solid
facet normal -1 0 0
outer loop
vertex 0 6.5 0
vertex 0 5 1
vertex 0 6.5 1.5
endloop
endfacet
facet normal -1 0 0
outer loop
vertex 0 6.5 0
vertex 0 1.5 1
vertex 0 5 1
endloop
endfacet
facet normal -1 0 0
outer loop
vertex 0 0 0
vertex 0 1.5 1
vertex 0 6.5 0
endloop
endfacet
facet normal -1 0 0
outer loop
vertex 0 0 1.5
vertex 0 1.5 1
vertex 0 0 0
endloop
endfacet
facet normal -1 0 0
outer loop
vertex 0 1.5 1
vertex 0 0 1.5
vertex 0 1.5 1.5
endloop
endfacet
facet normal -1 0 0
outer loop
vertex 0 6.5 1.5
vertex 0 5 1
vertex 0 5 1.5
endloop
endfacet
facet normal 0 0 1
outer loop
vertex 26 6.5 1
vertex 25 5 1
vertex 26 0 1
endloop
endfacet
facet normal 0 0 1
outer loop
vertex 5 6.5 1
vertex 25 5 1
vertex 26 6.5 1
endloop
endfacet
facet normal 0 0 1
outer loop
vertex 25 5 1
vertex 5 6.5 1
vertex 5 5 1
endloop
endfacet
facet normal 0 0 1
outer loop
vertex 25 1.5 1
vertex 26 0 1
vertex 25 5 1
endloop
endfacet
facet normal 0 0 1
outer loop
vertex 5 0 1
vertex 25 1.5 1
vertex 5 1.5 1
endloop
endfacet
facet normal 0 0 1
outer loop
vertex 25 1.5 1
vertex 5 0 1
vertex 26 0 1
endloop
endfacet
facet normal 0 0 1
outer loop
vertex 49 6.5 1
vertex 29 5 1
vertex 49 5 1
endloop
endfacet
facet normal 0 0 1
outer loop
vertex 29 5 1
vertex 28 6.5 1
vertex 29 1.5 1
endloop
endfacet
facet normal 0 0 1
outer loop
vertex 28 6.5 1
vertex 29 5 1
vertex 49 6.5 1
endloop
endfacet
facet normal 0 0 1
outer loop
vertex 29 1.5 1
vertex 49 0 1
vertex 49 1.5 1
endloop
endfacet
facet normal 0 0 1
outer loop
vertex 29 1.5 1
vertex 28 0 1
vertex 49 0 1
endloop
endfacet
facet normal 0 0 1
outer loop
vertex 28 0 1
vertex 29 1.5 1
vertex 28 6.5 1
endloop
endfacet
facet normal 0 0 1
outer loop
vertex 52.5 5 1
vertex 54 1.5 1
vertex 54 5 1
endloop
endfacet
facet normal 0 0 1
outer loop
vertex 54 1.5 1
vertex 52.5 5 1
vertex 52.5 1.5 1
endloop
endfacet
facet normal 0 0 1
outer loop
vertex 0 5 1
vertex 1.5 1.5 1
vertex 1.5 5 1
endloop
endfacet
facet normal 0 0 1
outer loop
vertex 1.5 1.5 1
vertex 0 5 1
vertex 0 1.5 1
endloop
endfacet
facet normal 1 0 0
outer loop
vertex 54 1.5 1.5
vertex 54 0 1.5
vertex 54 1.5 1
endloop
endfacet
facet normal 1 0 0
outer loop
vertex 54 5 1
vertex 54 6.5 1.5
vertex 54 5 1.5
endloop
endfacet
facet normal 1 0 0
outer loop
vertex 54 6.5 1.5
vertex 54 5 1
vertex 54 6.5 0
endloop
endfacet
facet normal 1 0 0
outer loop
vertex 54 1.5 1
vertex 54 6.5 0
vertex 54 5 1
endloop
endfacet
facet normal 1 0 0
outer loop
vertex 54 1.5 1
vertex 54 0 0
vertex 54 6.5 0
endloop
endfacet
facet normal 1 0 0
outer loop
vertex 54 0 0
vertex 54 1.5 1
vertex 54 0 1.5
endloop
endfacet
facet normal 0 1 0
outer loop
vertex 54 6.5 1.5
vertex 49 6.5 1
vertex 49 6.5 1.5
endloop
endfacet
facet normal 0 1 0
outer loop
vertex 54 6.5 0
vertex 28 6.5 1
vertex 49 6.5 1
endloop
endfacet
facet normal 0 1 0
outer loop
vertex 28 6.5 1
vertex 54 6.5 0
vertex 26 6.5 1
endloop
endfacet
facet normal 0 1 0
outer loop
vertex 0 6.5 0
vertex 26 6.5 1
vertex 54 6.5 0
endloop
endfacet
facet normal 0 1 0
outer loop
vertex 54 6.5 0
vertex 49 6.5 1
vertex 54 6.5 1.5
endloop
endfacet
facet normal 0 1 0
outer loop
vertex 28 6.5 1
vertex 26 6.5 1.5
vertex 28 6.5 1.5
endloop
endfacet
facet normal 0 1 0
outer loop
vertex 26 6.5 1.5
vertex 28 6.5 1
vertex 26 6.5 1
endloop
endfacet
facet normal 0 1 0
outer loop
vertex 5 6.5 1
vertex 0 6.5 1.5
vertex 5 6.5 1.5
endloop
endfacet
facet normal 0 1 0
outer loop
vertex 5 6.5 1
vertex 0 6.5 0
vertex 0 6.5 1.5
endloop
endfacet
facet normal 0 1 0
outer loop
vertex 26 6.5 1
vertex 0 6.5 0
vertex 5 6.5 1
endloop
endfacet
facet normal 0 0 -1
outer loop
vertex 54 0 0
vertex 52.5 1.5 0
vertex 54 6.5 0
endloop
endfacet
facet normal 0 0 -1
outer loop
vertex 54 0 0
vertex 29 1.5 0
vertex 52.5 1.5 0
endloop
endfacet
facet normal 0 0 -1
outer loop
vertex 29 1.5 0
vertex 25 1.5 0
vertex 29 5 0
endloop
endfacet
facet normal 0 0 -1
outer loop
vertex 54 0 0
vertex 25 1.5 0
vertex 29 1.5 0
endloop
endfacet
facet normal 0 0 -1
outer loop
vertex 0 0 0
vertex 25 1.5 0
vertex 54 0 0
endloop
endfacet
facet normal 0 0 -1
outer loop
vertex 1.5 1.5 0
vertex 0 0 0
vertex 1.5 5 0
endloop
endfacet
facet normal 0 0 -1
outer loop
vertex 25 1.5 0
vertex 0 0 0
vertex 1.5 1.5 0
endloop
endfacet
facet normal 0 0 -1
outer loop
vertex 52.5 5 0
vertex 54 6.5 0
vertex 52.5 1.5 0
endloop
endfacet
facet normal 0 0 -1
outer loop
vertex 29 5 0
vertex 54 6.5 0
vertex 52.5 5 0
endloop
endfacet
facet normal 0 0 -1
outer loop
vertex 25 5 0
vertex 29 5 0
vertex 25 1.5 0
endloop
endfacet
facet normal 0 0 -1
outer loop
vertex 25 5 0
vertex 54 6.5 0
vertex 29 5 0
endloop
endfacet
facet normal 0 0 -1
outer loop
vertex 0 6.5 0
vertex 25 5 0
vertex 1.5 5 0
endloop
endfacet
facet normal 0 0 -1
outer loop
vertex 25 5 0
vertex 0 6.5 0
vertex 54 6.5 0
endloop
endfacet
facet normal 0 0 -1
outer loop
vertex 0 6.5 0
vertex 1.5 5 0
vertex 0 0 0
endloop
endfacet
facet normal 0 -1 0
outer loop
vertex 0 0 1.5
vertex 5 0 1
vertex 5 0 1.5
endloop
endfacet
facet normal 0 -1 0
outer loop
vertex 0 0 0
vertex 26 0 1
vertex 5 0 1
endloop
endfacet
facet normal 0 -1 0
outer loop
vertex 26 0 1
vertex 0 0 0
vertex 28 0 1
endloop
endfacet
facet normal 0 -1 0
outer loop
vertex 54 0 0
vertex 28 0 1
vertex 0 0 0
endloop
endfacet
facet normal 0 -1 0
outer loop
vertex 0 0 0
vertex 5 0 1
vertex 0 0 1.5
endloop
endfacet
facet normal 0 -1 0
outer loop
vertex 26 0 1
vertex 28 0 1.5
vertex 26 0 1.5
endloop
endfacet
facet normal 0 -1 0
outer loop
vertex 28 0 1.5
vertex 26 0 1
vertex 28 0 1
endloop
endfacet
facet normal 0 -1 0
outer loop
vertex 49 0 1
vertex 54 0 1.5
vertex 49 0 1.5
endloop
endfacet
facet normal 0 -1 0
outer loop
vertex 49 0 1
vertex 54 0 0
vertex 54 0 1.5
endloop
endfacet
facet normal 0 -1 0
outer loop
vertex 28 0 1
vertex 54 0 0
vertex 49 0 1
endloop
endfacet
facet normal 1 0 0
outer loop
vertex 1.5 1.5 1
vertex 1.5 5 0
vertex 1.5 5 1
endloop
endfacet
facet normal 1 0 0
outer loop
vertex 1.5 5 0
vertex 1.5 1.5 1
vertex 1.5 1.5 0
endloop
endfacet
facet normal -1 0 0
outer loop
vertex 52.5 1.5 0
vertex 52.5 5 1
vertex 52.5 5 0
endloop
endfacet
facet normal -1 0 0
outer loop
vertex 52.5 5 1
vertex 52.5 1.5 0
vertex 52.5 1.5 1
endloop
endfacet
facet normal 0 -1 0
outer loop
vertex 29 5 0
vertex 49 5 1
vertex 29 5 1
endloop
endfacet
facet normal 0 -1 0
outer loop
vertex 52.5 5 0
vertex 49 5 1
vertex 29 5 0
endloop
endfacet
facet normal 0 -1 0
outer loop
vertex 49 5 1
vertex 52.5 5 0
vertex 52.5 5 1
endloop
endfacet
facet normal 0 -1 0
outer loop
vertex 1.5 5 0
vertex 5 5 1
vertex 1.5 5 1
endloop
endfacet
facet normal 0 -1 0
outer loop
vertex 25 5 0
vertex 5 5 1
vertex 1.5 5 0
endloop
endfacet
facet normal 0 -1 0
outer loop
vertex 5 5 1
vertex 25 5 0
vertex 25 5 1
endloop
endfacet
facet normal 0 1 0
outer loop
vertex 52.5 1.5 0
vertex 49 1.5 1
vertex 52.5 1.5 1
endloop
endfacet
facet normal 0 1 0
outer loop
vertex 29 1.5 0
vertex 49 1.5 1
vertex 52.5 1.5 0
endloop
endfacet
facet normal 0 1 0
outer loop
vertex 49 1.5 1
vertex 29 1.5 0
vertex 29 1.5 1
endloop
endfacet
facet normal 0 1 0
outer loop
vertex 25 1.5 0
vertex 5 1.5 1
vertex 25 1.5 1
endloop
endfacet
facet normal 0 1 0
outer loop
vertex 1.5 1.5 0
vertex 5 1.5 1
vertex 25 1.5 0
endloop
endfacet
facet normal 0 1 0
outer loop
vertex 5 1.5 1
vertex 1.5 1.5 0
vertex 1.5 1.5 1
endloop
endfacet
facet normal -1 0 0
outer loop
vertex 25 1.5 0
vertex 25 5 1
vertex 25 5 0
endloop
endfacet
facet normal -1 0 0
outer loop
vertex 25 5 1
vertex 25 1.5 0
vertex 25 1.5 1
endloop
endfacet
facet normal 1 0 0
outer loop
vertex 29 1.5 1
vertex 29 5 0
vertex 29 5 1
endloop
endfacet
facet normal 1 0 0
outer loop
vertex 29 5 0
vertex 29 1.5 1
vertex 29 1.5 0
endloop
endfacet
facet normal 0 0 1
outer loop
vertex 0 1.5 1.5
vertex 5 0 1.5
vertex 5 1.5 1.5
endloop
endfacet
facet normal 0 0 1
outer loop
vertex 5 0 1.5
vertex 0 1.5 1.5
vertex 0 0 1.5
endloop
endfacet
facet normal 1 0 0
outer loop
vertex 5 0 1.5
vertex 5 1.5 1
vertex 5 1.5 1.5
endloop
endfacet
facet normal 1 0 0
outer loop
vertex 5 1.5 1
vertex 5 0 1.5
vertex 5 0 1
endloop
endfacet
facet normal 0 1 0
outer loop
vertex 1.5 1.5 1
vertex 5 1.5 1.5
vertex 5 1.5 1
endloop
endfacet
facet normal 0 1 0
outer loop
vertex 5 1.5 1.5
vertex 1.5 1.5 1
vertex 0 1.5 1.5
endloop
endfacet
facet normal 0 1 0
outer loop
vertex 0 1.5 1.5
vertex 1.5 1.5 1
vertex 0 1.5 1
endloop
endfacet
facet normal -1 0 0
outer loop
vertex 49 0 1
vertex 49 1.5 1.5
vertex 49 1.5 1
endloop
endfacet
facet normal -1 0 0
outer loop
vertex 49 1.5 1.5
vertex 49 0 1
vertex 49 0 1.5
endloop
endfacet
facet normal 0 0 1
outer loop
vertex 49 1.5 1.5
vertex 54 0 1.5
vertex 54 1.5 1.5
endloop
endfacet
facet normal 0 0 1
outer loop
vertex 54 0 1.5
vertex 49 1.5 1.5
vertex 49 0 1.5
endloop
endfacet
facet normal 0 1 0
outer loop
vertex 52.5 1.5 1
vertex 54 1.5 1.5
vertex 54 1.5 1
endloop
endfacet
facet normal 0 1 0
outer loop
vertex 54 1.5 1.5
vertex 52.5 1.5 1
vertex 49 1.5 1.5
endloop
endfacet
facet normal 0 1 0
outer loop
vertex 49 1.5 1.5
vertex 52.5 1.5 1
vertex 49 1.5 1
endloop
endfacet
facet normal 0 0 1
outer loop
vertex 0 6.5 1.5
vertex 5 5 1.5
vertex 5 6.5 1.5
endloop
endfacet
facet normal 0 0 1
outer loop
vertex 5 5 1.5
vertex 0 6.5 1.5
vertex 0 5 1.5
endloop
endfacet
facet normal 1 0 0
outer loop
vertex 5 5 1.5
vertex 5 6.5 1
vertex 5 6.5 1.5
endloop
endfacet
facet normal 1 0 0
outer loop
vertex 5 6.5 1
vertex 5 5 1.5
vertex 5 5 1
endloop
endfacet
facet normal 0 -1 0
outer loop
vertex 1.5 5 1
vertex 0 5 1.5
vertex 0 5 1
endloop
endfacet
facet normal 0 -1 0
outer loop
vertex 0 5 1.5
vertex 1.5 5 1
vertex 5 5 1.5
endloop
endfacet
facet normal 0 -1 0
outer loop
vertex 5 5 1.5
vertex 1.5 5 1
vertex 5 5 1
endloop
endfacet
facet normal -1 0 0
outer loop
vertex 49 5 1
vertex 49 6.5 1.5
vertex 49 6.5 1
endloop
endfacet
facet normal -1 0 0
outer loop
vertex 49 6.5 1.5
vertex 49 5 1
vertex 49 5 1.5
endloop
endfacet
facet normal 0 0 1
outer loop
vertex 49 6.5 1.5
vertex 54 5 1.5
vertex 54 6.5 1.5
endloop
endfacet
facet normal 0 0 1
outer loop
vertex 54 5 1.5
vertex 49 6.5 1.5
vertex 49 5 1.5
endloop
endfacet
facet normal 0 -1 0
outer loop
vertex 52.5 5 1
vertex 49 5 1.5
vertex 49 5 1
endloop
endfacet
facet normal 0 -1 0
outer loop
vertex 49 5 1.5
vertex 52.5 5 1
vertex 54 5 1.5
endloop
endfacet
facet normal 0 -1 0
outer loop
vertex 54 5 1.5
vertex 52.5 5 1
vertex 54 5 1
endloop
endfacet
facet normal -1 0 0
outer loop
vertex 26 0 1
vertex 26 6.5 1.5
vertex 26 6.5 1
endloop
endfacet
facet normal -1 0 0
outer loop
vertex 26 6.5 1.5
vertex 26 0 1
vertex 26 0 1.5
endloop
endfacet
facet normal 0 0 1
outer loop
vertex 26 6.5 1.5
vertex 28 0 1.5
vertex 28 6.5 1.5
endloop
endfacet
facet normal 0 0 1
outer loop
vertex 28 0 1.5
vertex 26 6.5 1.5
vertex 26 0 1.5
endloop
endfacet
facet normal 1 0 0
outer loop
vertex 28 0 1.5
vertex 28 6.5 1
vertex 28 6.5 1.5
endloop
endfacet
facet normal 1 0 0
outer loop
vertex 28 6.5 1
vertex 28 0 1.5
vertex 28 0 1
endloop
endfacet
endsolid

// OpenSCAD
module small_stick_mate()
{
    full_length = 54;
    full_width = 6.5;
    void_length = full_length-3;
    void_width = full_width-3;
    thickness = 1;
    union(){
        // Main body of the part
        difference() {
            cube(size=[full_length,full_width,thickness]);
            void_x = (full_length - void_length)/2;
            void_y = (full_width -void_width)/2;
            translate([void_x,void_y,-1]) cube(size=[void_length,void_width,10]);
        }
      
       // Central connection
       connection_length = 4;
       connection_x = (full_length/2 - connection_length/2);
       translate([connection_x,0,0]) cube(size=[connection_length,full_width,1]); 
       
       // Spacers
       spacer_height = 0.5;
       spacer_length = 5;
       spacer_width = (full_width-void_width)/2;
       spacer_x = full_length-spacer_length;
       spacer_y = (full_width-void_width)/2 + void_width;
       translate([0,0,1]) cube(size=[spacer_length,spacer_width,spacer_height]);
       translate([spacer_x,0,1]) cube(size=[spacer_length,spacer_width,spacer_height]);  
       translate([0,spacer_y,1]) cube(size=[spacer_length,spacer_width,spacer_height]); 
       translate([spacer_x,spacer_y,1]) cube(size=[spacer_length,spacer_width,spacer_height]); 
        
       translate([26,0,1]) cube(size=[2,6.5,spacer_height]); 
    }
}

small_stick_mate();
